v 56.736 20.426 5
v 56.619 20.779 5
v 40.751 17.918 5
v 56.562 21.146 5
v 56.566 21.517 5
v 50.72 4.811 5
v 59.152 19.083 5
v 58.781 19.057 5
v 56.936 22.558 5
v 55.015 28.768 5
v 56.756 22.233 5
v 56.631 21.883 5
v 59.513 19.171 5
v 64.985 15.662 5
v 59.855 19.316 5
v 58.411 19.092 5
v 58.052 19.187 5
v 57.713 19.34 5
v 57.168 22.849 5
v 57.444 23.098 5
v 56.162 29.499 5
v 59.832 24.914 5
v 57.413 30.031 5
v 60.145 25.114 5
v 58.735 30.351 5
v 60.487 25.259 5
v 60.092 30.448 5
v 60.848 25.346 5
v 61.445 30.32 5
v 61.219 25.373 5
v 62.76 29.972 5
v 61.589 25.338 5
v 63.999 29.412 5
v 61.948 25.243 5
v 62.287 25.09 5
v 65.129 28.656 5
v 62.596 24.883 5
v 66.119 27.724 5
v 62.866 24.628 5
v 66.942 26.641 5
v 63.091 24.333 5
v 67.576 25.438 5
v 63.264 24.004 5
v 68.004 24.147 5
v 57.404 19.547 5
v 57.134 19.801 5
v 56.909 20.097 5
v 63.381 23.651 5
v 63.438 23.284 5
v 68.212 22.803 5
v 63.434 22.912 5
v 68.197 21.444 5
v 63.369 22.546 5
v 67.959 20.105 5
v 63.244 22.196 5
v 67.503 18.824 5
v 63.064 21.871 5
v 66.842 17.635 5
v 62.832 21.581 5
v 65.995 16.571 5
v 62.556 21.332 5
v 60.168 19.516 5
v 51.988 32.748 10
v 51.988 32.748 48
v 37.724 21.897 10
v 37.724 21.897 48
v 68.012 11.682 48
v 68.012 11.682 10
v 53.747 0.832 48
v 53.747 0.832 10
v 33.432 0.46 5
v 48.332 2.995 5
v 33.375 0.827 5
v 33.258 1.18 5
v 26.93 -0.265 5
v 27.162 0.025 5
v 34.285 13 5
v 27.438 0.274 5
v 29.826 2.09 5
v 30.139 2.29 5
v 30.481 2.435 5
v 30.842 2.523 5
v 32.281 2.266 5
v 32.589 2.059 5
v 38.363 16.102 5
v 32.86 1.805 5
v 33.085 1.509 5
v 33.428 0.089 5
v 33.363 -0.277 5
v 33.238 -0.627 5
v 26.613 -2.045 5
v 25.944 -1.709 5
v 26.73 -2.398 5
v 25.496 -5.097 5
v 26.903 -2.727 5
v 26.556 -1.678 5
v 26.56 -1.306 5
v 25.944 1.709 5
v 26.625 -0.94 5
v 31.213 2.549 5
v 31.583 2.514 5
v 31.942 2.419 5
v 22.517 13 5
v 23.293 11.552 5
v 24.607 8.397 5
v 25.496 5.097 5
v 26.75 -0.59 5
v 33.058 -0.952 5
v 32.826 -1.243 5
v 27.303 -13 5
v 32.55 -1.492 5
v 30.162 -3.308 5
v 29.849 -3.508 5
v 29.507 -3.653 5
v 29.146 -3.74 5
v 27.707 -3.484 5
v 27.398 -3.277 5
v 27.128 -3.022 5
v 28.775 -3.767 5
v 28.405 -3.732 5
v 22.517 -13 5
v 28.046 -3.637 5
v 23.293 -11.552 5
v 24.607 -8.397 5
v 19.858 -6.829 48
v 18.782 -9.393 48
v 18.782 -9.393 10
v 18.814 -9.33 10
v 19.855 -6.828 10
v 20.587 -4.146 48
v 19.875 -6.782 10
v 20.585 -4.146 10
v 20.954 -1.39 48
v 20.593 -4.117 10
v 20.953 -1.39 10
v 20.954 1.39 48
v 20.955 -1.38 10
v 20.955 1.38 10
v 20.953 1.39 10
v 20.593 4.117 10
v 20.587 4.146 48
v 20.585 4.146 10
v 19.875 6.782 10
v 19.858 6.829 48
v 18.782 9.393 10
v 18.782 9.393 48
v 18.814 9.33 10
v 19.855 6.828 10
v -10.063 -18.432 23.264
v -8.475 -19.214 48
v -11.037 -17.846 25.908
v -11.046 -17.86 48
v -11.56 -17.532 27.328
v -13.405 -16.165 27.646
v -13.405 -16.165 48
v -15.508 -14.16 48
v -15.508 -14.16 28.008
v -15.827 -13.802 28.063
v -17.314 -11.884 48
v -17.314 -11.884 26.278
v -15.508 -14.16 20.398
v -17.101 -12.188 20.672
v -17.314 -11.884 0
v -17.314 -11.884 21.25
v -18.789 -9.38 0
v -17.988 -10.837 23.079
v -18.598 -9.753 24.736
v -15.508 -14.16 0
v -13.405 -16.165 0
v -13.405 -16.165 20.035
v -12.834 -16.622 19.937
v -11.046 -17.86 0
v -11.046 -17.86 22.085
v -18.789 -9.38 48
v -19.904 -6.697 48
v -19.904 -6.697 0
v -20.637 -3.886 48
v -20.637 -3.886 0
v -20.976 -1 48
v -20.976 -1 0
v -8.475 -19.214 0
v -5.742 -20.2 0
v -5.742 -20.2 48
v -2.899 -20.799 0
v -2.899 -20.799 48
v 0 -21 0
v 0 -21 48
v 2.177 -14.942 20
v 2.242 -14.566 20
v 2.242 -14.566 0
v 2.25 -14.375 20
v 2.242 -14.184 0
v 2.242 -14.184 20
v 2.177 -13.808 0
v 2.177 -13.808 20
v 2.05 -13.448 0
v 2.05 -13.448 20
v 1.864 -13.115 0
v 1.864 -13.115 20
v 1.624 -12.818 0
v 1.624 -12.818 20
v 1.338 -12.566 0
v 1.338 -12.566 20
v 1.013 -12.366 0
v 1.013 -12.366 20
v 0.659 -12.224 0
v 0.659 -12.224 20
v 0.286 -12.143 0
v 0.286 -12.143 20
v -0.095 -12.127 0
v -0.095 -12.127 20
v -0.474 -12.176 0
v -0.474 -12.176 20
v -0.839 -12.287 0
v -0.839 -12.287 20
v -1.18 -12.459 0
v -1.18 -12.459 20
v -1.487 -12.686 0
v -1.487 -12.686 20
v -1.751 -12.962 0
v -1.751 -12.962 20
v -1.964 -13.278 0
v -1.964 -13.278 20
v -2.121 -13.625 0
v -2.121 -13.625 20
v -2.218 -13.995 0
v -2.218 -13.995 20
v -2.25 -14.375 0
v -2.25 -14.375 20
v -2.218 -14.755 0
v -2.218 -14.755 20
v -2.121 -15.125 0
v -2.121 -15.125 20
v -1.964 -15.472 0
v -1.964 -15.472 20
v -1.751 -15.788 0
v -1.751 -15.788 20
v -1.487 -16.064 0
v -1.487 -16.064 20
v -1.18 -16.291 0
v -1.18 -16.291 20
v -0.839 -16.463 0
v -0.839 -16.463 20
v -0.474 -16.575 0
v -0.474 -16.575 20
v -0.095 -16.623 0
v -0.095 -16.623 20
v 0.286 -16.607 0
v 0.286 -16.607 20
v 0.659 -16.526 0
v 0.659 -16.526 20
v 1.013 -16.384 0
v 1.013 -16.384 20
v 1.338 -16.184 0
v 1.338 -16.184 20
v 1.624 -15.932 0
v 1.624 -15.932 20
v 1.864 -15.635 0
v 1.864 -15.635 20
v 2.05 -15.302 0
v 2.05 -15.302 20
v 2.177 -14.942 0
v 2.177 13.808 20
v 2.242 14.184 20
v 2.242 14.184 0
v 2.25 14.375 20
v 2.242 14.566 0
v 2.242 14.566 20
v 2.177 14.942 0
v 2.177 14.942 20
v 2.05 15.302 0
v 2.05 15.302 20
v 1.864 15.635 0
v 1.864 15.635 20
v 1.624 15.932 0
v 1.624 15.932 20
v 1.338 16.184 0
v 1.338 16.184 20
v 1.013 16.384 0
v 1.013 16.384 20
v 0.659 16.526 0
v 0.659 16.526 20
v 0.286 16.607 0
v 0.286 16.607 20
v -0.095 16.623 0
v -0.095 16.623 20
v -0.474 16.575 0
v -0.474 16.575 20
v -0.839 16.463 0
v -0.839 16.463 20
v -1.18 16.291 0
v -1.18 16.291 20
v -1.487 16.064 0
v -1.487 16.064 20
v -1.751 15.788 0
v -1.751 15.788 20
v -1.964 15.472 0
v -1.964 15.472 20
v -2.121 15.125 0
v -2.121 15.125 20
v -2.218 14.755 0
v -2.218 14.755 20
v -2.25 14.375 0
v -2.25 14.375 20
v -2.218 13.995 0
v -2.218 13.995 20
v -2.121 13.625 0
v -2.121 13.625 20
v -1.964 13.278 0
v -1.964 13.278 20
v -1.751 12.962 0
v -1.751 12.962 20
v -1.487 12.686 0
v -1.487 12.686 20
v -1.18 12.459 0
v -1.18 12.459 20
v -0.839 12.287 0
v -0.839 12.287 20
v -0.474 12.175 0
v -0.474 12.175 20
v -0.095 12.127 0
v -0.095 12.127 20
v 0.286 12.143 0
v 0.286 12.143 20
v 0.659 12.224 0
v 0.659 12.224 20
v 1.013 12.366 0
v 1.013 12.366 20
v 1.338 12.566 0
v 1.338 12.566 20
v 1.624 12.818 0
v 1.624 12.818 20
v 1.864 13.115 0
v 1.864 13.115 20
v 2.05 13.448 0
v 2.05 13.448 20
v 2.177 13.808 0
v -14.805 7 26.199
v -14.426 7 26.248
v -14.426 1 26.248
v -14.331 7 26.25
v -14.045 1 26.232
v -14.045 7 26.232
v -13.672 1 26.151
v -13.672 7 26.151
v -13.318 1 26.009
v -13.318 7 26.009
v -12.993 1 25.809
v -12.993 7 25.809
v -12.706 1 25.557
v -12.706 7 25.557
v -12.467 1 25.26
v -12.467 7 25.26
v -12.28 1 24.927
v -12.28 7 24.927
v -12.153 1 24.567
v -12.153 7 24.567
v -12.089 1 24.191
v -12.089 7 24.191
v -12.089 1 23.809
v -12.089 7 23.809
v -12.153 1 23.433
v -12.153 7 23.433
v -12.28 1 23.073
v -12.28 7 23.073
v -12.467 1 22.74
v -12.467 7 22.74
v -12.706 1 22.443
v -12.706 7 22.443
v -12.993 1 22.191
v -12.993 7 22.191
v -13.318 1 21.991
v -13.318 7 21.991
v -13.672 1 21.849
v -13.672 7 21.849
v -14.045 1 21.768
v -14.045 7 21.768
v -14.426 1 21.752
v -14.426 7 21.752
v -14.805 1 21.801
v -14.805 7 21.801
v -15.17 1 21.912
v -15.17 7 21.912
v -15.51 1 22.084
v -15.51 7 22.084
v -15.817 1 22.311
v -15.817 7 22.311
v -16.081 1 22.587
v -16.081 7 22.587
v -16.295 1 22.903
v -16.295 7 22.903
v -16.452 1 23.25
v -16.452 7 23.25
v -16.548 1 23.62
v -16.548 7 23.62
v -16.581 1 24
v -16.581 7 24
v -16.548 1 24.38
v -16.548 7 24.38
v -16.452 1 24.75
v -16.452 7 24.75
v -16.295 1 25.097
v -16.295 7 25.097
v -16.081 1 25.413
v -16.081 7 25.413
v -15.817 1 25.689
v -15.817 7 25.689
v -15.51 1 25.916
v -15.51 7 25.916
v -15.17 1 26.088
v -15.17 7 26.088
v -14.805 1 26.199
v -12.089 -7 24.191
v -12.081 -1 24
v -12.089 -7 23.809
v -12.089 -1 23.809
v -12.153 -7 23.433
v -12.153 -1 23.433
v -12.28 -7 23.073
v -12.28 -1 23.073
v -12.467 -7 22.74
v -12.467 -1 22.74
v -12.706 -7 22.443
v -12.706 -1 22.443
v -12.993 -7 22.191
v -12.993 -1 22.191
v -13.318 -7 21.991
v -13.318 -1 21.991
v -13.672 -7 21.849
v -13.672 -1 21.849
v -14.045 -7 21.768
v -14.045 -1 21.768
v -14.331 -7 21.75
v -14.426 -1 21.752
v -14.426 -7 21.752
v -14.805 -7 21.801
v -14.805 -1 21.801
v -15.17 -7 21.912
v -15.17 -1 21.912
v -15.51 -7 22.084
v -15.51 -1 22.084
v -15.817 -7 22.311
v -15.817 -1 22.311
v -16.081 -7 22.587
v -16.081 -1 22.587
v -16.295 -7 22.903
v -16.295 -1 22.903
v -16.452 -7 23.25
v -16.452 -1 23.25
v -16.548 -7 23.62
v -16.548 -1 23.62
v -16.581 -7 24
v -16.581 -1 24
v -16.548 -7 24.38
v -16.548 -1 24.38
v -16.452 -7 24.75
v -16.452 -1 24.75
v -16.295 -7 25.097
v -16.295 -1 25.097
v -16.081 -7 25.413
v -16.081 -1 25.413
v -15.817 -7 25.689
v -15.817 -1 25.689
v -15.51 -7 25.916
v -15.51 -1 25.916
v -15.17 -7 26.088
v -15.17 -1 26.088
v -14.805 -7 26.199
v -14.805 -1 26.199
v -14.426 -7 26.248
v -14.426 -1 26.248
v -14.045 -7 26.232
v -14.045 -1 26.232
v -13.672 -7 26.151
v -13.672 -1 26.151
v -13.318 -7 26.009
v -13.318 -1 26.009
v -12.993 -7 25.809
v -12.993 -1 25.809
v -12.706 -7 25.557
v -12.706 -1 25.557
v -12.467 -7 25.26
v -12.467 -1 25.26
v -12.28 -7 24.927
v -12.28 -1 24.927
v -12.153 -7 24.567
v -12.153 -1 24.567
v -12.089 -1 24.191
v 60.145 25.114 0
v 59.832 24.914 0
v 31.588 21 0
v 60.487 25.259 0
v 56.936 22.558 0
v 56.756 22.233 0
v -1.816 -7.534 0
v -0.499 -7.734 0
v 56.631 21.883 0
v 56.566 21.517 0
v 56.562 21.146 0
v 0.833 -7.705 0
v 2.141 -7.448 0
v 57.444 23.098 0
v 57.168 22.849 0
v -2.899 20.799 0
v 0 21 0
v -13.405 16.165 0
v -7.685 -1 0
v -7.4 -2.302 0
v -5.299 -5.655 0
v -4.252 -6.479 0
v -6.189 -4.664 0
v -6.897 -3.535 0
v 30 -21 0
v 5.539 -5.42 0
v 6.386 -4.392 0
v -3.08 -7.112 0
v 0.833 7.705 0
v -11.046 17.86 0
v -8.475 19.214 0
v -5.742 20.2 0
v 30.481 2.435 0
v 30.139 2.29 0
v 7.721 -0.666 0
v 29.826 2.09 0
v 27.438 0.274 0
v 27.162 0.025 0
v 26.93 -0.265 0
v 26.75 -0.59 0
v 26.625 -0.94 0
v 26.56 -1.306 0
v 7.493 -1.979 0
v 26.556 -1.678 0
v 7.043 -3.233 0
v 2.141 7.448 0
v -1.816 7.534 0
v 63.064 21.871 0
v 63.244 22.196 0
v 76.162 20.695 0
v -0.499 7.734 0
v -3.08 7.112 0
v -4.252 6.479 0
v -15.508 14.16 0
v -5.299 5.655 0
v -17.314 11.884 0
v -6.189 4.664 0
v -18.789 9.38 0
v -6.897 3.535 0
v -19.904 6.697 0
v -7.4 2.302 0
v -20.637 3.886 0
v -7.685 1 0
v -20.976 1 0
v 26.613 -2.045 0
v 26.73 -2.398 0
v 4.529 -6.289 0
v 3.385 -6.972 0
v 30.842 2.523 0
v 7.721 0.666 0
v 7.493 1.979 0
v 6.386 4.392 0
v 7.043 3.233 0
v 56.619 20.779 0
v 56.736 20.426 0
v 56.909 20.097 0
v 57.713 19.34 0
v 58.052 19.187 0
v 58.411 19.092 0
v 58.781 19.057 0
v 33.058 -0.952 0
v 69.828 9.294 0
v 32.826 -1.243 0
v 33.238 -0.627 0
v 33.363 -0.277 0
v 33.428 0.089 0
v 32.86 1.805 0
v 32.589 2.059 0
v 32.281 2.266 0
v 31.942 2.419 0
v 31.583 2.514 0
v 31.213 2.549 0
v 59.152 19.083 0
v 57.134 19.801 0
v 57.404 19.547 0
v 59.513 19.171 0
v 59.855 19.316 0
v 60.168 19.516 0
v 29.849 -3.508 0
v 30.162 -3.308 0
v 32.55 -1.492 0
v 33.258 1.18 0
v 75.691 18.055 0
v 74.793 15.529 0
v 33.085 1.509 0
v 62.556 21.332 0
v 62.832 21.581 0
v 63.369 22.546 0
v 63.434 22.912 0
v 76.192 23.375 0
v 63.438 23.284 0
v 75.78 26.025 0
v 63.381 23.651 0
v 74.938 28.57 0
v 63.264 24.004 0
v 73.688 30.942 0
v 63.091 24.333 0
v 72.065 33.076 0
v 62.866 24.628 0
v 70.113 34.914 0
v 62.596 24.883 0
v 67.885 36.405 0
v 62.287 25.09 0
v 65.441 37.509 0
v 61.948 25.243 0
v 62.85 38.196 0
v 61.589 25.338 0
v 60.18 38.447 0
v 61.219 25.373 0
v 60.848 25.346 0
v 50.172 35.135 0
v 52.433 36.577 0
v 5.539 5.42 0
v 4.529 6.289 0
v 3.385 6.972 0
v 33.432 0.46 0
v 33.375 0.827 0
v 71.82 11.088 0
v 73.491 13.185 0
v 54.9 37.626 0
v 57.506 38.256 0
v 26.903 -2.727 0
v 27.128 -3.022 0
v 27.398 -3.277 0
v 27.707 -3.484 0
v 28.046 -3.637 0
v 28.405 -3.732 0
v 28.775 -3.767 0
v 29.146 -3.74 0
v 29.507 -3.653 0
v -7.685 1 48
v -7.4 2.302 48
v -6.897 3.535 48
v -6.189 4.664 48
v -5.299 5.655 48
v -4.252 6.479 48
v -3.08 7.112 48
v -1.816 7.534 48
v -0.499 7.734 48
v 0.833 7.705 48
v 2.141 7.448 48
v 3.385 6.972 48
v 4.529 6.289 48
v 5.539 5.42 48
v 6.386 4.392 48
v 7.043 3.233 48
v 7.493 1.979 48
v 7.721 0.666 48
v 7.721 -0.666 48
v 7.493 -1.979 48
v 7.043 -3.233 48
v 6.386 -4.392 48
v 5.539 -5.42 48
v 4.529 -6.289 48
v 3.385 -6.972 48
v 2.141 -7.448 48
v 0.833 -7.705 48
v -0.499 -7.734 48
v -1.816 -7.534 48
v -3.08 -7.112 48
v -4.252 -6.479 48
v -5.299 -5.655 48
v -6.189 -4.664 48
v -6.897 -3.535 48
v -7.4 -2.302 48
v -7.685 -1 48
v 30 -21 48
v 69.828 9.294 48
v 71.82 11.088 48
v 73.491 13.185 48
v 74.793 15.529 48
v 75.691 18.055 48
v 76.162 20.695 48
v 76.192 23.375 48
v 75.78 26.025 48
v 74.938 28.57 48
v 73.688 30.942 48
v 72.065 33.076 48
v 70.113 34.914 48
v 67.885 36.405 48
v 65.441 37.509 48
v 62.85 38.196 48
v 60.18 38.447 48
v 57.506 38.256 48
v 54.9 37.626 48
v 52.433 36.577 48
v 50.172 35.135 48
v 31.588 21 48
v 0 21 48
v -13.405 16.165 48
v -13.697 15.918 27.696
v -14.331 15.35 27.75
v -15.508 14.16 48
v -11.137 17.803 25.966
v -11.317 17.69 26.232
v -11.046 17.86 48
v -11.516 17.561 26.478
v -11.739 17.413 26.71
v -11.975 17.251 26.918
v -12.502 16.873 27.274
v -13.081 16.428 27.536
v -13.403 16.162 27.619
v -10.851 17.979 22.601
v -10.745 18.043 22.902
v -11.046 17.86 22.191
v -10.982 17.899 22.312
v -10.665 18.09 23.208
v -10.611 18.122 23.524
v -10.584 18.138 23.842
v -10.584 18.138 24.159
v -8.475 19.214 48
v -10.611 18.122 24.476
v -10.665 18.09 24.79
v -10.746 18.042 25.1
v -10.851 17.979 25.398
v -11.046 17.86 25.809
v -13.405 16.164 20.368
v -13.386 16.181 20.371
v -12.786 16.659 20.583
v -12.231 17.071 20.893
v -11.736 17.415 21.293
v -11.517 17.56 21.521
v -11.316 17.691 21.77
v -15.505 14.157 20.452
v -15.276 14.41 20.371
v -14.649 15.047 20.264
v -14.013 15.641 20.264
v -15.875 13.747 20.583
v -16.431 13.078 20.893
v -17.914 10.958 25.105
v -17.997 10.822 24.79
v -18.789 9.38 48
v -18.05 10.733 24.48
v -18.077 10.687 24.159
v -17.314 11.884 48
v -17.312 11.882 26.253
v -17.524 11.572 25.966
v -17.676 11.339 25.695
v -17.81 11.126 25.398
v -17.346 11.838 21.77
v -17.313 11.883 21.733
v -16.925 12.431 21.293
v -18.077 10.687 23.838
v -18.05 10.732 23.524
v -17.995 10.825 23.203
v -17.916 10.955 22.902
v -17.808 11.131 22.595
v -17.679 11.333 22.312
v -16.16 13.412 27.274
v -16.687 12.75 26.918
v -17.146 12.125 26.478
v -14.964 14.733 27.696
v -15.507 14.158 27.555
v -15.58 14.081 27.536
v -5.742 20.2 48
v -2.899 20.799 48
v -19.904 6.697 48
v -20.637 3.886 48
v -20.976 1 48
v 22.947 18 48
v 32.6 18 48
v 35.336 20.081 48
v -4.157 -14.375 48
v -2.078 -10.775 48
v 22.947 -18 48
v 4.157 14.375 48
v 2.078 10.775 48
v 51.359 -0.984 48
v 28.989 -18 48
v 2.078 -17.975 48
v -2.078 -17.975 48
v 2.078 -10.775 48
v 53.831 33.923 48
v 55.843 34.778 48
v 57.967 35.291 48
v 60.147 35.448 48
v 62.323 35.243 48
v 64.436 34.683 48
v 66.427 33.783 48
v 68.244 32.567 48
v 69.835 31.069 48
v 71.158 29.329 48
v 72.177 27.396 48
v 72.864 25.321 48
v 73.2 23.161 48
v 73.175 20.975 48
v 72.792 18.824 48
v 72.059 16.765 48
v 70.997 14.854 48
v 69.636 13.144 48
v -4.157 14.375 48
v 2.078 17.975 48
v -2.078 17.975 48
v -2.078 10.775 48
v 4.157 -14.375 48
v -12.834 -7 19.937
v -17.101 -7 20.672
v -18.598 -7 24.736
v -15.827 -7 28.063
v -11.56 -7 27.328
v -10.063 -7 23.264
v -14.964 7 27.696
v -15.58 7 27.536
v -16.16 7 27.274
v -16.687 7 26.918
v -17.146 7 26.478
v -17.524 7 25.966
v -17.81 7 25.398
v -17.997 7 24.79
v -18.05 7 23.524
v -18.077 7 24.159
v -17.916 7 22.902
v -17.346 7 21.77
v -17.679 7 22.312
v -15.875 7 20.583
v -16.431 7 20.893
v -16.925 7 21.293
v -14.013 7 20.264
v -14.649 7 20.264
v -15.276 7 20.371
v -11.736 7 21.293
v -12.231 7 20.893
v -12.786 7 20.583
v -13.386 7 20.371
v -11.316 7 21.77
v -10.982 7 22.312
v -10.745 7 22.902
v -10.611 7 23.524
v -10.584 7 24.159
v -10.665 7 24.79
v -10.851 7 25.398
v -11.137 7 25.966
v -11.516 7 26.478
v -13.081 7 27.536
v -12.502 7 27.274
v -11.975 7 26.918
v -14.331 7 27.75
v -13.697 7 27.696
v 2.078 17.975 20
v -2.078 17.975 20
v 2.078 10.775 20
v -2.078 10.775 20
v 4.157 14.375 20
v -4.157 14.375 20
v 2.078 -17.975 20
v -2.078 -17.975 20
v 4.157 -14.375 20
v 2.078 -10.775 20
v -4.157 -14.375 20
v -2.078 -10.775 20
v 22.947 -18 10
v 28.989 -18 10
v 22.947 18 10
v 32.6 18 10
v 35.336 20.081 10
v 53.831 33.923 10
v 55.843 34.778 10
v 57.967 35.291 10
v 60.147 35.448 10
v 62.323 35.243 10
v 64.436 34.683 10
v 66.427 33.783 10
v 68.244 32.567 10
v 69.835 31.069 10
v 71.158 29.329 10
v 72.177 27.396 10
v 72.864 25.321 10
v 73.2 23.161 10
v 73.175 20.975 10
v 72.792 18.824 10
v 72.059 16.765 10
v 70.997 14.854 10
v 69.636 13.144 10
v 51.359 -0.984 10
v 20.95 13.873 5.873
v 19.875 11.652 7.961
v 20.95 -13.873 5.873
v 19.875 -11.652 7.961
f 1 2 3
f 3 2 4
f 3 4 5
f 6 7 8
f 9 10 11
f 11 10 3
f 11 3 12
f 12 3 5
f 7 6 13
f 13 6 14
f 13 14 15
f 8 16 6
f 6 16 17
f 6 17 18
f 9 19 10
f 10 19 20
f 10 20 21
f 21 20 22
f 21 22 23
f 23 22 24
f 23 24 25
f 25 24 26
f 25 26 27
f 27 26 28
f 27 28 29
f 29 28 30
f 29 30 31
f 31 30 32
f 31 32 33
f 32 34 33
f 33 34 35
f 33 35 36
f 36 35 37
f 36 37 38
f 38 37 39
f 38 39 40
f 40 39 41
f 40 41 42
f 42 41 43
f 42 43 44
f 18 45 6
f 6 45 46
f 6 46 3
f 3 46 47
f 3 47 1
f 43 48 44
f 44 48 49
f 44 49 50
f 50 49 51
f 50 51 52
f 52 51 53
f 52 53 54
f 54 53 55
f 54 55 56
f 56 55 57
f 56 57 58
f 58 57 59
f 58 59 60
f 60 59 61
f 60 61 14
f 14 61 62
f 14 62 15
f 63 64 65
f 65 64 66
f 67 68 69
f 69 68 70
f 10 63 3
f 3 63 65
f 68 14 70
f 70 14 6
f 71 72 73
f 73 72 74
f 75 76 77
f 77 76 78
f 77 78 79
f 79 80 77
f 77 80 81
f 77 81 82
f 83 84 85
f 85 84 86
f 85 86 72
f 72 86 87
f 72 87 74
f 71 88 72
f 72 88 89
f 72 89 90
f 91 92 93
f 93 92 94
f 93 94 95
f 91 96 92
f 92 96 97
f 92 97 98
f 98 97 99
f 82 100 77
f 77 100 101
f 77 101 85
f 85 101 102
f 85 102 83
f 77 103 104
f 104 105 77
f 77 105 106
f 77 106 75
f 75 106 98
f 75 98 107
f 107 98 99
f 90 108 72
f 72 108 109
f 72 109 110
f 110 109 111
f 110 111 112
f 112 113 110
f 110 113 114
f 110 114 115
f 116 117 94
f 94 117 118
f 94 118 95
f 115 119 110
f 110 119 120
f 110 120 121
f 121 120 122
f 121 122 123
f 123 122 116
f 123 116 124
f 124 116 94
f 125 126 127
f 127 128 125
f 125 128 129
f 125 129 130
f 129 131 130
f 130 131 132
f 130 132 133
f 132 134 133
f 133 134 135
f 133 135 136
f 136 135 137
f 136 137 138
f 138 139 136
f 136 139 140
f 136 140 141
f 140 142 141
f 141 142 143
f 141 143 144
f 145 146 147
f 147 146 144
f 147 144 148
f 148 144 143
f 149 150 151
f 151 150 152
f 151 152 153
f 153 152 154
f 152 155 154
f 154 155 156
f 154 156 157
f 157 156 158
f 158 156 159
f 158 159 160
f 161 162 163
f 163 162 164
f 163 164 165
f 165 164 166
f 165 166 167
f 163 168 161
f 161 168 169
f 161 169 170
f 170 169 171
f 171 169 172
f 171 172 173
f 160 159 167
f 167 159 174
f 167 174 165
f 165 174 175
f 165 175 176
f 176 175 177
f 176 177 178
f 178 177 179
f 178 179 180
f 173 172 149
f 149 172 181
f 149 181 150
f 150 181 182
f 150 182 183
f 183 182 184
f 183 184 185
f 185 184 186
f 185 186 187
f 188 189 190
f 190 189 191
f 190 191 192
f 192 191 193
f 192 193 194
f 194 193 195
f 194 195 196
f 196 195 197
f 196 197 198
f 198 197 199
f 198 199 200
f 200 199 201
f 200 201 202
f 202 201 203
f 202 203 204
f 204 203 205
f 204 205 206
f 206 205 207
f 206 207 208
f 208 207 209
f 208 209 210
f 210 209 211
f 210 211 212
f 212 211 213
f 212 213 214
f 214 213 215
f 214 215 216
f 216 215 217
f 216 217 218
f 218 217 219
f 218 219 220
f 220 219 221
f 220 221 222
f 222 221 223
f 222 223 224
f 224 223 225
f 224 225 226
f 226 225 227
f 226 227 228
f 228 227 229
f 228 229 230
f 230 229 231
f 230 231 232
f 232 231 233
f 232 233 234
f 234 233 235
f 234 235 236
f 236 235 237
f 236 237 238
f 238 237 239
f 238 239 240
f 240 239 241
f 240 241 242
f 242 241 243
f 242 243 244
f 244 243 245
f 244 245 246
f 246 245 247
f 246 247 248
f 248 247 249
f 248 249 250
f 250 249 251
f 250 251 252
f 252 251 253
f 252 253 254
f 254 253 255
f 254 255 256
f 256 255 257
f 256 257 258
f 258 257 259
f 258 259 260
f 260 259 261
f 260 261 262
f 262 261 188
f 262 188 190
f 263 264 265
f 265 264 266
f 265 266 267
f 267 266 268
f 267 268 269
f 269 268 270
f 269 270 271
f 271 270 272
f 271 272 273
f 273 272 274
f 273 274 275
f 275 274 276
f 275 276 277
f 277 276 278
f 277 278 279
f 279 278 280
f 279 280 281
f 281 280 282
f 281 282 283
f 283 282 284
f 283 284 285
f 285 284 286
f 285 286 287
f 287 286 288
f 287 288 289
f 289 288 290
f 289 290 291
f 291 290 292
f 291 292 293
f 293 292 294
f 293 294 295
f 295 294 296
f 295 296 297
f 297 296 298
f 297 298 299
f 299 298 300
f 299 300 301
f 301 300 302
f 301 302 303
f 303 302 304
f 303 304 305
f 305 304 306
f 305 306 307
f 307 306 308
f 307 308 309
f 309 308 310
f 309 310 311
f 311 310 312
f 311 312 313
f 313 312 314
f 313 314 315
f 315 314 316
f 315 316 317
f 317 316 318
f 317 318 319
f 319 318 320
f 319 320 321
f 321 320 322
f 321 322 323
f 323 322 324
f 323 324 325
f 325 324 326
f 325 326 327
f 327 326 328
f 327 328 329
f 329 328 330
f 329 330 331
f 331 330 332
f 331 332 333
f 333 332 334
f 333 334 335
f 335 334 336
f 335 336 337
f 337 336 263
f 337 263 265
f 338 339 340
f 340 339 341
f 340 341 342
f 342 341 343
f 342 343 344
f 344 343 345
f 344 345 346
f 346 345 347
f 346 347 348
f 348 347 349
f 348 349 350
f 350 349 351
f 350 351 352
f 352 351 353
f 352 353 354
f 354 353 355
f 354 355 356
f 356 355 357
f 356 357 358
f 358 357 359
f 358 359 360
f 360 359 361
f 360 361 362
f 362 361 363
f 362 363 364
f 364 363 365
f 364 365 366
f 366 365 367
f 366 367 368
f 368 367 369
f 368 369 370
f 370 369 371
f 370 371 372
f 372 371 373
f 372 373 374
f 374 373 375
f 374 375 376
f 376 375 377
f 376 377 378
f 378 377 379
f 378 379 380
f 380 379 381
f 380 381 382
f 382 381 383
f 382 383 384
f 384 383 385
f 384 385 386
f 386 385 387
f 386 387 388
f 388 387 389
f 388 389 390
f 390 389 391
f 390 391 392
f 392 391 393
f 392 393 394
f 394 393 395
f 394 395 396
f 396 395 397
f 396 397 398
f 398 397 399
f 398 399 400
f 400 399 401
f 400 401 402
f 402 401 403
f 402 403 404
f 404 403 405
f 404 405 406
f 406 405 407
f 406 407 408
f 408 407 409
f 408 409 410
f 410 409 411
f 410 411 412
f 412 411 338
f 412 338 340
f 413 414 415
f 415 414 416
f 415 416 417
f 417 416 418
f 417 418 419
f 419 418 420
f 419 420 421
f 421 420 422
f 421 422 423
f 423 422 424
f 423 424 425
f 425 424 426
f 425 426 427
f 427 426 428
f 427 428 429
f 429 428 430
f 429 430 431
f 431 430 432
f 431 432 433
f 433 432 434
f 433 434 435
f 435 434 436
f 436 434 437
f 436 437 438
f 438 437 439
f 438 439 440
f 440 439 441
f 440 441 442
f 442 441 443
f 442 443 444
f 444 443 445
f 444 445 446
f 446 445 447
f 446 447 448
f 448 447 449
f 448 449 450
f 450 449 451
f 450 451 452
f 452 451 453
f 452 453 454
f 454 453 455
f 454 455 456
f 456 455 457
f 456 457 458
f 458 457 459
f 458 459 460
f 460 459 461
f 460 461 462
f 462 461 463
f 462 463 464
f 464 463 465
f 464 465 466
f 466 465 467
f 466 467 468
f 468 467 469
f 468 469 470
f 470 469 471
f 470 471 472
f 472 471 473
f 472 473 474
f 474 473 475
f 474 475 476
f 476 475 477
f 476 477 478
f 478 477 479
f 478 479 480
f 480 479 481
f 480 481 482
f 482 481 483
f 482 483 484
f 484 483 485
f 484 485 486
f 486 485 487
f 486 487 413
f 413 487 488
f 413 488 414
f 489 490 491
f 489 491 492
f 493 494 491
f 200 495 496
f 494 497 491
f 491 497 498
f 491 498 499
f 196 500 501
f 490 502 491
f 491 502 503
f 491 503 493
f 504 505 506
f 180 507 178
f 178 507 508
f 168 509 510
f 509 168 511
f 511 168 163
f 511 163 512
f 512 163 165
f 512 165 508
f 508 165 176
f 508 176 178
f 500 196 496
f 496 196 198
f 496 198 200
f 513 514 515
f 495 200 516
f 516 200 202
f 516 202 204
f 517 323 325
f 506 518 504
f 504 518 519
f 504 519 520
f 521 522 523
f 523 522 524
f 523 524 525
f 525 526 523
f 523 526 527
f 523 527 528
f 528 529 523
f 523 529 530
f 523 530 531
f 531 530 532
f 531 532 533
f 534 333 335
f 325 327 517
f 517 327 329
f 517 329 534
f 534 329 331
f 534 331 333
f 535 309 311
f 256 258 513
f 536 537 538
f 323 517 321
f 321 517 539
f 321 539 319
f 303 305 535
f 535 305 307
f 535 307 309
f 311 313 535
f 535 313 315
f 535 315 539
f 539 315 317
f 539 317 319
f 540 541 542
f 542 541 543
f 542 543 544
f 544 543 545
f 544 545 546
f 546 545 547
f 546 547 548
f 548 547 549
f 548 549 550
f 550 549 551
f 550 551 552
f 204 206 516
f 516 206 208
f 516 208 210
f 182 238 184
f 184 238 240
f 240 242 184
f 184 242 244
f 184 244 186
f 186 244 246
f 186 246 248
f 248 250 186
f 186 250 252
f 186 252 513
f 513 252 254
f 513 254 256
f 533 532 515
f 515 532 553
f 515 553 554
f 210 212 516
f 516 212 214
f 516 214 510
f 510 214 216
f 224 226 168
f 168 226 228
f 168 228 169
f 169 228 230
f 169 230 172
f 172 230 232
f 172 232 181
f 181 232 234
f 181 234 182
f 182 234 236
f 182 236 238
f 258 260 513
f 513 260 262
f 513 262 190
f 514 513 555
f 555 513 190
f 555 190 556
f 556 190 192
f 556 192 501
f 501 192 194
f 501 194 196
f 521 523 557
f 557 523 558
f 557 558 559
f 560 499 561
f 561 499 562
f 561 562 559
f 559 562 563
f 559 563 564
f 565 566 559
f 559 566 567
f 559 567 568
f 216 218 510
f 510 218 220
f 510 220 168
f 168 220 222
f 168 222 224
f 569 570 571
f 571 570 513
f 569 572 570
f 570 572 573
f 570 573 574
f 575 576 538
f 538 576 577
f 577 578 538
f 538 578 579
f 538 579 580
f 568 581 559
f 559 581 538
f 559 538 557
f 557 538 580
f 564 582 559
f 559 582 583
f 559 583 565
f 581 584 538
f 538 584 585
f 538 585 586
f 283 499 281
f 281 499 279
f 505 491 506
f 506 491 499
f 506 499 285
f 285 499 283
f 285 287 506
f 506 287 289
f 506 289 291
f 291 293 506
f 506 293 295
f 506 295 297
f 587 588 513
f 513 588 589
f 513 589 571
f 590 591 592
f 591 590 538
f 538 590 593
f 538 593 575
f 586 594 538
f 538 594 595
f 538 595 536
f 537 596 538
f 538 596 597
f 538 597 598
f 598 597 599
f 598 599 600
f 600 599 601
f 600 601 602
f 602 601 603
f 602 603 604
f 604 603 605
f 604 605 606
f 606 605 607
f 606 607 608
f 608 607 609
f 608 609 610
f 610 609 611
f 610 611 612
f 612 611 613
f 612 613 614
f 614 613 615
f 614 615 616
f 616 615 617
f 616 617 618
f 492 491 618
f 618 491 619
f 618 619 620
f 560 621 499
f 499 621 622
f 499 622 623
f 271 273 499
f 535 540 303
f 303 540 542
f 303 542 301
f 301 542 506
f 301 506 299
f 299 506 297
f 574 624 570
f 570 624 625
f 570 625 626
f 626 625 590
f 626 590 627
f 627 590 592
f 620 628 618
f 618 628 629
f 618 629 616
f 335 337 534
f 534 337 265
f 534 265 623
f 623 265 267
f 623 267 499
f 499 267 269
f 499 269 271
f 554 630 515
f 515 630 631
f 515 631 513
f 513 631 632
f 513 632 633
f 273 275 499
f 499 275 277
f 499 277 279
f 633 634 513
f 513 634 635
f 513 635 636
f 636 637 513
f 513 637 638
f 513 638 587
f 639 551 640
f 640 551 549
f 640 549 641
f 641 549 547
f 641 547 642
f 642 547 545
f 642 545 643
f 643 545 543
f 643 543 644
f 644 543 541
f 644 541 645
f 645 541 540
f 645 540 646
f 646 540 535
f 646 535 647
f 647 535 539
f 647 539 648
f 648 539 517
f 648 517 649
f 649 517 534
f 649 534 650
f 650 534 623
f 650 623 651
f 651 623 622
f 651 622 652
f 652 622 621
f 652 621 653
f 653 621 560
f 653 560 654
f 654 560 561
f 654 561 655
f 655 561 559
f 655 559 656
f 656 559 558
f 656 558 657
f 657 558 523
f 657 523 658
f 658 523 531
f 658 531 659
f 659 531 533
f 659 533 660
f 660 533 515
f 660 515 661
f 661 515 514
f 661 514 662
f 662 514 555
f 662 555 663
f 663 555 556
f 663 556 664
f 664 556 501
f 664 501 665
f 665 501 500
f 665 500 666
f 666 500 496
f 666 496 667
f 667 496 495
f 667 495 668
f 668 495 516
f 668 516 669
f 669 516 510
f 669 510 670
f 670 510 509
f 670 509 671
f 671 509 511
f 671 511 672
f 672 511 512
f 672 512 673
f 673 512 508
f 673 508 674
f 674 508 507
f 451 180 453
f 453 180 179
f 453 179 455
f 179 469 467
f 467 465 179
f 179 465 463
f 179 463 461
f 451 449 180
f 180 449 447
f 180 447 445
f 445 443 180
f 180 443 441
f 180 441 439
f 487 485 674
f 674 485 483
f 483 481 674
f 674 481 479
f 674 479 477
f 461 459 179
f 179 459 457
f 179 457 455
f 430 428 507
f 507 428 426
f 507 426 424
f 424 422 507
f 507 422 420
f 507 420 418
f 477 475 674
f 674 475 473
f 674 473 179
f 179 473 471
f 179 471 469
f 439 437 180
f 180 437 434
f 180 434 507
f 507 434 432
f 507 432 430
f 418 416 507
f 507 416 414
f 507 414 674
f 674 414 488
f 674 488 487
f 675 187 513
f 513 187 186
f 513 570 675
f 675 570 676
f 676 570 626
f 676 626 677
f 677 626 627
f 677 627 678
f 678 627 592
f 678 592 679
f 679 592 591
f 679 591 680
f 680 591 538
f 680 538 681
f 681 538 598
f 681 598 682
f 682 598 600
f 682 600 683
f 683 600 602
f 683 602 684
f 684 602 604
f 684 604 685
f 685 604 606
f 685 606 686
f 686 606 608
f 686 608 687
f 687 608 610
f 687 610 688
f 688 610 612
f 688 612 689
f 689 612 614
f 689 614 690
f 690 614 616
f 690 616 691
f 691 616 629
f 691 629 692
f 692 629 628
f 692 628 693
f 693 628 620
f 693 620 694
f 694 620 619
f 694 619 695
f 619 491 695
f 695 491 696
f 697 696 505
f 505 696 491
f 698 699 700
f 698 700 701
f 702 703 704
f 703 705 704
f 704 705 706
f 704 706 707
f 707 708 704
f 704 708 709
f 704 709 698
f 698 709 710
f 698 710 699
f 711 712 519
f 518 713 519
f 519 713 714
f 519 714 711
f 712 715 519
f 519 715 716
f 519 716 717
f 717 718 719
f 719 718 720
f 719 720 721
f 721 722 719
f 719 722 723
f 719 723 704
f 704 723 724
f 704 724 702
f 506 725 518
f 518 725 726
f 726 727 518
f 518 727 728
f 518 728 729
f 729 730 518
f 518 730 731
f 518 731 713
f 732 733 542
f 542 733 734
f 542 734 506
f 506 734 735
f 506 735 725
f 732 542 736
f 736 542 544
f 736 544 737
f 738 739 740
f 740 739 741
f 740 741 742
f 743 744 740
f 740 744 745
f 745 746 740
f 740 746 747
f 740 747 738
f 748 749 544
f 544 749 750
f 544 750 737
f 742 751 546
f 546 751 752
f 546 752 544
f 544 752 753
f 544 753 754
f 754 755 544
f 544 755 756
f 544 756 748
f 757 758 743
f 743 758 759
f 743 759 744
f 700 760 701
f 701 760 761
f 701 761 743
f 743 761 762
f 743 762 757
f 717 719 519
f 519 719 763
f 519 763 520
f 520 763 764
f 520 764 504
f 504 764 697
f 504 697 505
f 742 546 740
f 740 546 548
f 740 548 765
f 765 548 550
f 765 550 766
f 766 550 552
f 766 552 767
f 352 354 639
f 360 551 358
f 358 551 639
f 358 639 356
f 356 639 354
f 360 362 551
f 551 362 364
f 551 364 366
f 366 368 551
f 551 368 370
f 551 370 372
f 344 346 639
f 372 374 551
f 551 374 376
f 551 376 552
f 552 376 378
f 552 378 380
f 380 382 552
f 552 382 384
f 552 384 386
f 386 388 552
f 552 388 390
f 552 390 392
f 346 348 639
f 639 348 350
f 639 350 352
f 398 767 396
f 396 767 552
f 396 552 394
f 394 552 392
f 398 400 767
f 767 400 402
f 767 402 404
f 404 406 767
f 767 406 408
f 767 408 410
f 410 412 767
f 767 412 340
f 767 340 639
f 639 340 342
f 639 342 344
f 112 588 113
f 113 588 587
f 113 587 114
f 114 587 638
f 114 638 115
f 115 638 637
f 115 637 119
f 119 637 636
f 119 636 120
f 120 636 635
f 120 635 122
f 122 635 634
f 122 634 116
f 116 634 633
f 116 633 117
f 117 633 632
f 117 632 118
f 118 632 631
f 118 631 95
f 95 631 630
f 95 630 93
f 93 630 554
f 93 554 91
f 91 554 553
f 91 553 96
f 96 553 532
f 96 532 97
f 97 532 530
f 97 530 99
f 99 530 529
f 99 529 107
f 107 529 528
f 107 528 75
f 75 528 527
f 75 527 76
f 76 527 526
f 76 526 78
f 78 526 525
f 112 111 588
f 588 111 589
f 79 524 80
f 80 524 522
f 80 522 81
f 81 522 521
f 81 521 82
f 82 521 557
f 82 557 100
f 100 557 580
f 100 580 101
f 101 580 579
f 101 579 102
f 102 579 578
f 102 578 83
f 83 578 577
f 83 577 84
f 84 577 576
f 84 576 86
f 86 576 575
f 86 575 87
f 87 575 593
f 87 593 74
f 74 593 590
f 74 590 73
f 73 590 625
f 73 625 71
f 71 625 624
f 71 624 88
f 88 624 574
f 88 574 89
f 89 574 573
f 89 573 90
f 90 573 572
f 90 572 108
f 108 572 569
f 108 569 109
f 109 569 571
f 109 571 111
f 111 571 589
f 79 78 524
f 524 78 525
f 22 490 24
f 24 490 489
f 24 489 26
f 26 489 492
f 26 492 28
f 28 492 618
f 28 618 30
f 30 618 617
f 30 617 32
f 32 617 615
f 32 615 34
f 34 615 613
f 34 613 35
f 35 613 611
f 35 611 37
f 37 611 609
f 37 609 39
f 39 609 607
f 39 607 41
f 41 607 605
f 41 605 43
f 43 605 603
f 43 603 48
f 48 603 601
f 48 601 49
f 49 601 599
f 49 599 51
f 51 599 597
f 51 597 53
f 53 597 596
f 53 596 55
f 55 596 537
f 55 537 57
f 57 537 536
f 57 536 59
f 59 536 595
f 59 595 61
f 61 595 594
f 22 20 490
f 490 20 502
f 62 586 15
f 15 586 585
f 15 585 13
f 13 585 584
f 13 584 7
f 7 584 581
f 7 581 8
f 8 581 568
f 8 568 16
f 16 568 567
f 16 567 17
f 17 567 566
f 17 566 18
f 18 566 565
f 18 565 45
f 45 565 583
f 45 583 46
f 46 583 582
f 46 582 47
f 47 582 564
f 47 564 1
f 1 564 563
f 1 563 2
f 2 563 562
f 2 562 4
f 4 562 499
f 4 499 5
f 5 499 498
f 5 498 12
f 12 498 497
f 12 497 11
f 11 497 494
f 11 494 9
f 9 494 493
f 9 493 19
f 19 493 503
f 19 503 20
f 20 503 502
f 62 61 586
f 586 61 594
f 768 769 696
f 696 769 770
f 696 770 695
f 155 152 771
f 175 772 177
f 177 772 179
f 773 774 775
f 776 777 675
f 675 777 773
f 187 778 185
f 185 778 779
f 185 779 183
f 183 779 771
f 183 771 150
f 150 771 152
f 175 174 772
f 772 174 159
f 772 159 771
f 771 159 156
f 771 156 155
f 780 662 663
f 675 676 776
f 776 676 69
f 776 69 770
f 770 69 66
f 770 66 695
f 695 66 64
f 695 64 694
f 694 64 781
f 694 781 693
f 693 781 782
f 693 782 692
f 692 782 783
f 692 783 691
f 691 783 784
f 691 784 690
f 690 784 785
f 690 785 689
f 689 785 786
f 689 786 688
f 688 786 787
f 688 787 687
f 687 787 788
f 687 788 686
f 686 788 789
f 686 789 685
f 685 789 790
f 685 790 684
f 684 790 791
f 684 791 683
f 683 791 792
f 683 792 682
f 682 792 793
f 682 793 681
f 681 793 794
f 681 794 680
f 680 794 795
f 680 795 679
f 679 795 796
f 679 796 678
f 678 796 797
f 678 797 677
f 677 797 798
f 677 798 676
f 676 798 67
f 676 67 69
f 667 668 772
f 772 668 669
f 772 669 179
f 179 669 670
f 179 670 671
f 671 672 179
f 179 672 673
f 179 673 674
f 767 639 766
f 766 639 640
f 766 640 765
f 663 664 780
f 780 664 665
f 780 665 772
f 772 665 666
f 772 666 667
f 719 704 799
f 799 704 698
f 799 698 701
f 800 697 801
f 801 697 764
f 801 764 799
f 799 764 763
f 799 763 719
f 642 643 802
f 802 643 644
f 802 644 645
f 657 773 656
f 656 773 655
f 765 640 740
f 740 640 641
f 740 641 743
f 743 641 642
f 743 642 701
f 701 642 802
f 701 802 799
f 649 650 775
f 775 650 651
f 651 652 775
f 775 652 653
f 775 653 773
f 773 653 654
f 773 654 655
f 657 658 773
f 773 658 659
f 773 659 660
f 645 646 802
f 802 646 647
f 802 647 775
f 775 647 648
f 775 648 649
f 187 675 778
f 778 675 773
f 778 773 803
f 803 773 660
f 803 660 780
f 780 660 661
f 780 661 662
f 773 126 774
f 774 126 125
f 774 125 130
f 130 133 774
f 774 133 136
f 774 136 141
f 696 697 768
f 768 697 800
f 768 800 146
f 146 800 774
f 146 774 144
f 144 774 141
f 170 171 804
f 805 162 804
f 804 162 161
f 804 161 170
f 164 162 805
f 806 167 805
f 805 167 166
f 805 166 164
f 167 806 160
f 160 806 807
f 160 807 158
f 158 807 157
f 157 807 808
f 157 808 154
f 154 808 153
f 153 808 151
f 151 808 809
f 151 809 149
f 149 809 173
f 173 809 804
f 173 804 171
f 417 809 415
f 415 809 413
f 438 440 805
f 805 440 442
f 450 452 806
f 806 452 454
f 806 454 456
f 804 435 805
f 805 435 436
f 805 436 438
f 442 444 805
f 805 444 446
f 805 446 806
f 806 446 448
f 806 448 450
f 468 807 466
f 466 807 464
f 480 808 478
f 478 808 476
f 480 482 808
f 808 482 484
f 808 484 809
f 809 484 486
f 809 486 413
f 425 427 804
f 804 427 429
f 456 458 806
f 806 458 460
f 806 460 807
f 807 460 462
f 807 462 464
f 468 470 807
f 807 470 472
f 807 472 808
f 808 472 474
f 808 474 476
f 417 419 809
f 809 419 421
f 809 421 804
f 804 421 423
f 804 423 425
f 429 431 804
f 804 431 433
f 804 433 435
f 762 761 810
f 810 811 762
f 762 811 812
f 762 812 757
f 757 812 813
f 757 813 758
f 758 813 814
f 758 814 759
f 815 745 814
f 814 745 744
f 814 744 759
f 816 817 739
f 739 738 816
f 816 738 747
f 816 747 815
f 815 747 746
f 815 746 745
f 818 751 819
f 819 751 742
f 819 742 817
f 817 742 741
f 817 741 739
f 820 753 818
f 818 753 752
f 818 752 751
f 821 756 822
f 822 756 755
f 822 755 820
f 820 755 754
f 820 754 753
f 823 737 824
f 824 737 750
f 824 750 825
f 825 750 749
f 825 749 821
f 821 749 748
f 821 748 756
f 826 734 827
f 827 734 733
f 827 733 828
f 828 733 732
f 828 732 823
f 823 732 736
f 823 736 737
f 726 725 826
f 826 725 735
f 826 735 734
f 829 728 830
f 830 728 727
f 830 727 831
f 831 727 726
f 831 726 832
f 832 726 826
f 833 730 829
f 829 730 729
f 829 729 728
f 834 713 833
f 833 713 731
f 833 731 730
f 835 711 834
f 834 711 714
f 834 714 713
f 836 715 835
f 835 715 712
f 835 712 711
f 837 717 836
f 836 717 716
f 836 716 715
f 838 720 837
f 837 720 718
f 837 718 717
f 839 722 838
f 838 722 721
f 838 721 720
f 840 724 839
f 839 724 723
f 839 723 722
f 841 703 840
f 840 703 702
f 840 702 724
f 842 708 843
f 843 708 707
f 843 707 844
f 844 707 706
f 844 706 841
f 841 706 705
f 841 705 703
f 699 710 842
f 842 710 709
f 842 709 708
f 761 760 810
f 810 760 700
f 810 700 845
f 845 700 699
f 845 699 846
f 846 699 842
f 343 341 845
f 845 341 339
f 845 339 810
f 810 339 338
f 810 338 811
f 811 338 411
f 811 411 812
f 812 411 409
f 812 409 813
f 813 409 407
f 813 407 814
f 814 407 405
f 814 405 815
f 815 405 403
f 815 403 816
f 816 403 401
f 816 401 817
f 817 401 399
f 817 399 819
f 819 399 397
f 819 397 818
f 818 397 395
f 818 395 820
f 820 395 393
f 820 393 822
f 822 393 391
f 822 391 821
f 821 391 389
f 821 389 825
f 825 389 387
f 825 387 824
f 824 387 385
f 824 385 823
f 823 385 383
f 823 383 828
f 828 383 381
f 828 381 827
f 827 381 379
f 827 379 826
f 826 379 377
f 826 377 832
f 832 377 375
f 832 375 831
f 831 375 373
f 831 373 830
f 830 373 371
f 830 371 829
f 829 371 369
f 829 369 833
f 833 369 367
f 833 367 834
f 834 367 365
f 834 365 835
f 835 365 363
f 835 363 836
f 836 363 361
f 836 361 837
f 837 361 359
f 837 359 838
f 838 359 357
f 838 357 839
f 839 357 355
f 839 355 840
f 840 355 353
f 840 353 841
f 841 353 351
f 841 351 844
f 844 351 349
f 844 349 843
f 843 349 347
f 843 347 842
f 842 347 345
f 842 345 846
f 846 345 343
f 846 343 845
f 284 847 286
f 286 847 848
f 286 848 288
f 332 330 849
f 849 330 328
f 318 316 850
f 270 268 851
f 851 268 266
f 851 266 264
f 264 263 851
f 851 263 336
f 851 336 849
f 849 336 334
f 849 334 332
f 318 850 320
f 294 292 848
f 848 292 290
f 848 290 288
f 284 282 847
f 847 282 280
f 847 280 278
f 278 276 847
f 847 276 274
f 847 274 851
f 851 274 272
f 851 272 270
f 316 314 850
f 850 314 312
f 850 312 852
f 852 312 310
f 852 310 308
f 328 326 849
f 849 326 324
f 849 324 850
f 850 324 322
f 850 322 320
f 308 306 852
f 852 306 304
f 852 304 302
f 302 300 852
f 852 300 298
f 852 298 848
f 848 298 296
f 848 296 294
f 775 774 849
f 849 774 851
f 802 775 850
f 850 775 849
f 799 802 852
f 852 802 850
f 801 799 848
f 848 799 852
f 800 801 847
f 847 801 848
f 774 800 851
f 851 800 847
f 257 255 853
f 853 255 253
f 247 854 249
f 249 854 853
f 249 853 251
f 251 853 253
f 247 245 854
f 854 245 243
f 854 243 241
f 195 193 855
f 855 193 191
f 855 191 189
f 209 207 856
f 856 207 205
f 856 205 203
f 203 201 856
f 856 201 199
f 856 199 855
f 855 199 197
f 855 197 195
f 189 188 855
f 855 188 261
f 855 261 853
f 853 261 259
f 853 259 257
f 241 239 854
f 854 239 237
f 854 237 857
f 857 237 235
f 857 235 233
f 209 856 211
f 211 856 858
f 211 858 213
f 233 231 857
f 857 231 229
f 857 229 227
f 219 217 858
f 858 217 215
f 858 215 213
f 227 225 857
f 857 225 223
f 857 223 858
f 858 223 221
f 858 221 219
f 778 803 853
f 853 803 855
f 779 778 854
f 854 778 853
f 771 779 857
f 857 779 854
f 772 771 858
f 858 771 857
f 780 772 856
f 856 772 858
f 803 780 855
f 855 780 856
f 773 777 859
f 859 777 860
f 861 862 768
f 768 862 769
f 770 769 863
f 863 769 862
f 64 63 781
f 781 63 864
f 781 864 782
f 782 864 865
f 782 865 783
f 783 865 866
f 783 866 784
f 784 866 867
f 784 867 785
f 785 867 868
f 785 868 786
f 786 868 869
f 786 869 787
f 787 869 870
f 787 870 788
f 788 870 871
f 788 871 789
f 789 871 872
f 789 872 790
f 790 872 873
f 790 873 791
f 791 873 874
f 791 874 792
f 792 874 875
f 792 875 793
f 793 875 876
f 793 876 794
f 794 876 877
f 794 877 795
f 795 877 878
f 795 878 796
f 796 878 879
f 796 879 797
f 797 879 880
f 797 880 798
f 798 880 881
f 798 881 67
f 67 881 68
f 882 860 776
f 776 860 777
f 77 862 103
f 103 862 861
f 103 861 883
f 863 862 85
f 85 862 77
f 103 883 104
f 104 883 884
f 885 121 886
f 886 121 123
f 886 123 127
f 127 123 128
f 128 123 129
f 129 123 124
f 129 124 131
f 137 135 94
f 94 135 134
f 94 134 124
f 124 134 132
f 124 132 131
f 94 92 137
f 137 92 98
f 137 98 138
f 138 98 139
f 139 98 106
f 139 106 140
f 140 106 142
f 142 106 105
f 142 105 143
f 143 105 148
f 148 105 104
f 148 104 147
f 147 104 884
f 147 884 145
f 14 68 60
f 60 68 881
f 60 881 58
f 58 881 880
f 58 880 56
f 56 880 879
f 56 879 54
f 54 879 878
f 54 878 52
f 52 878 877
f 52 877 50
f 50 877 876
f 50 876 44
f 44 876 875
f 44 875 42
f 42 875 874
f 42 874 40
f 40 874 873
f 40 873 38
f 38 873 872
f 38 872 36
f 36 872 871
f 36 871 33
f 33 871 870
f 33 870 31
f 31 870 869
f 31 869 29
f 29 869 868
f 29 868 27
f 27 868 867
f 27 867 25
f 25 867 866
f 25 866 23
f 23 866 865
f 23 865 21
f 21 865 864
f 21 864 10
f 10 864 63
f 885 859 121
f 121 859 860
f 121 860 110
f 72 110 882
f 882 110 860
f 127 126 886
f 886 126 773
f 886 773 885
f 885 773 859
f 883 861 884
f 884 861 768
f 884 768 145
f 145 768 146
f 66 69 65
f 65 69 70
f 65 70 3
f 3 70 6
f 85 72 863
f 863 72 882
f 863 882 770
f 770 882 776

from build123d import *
from build123d.topology import SkipClean

# Parameters (mm, degrees)
BOSS_EXTRUDE1_DEPTH     = 5
BOSS_EXTRUDE2_DEPTH     = 43
CUT_EXTRUDE1_DEPTH      = 99.344878968
CUT_EXTRUDE1_DEPTH_BACK = 99.344878968
SKETCH4_R               = 2.25
CUT_EXTRUDE2_DEPTH      = 14
SKETCH6_R               = 3.75
CUT_EXTRUDE3_DEPTH      = 14
SKETCH7_R               = 2.25
CUT_EXTRUDE4_DEPTH      = 50
CUT_EXTRUDE5_DEPTH      = 28
EXTRUDE_THIN1_DEPTH     = 43
CHAMFER1_SIZE           = 5
CHAMFER2_START          = 4.9999999
CHAMFER2_DEPTH          = 43.0000001
CHAMFER3_SIZE           = 10
CHAMFER3_SIZE_2         = 7.855445392
EXTRUDE_THIN2_REACH     = 99.948


with BuildPart() as part:
    # Sketch1 → Boss-Extrude1 (new body)
    with BuildSketch(Plane.XY):
        with BuildLine():
            Line((0, 21), (31.588461174, 21))
            Line((31.588461174, 21), (50.172213659, 35.135394674))
            ThreePointArc((50.172213659, 35.135394674), (72.920555239, 32.042625706), (69.827786272, 9.294284126))
            Line((69.827786272, 9.294284126), (30, -21))
            Line((30, -21), (0, -21))
            ThreePointArc((0, -21), (-14.491376746, -15.198684154), (-20.976176963, -1))
            Line((-20.976176963, -1), (-7.685213074, -1))
            ThreePointArc((-7.685213074, -1), (7.75, 0), (-7.685213074, 1))
            Line((-7.685213074, 1), (-20.976176963, 1))
            ThreePointArc((-20.976176963, 1), (-14.491376746, 15.198684154), (0, 21))
        make_face()
        with BuildLine():
            Line((27.437787439, 0.273900145), (29.82554698, 2.090106184))
            ThreePointArc((29.82554698, 2.090106184), (32.978521164, 1.661441058), (32.549856038, -1.491533127))
            Line((32.549856038, -1.491533127), (30.162096497, -3.307739166))
            ThreePointArc((30.162096497, -3.307739166), (27.009122313, -2.87907404), (27.437787439, 0.273900145))
        make_face(mode=Mode.SUBTRACT)
        with BuildLine():
            Line((62.556034265, 21.332122764), (60.168274724, 19.515916725))
            ThreePointArc((60.168274724, 19.515916725), (57.01530054, 19.944581851), (57.443965666, 23.097556036))
            Line((57.443965666, 23.097556036), (59.831725206, 24.913762075))
            ThreePointArc((59.831725206, 24.913762075), (62.984699391, 24.485096949), (62.556034265, 21.332122764))
        make_face(mode=Mode.SUBTRACT)
    extrude(amount=BOSS_EXTRUDE1_DEPTH)

    # Sketch2 → Boss-Extrude2 (add)
    with SkipClean():  # the faces are left unmerged after this step: merging them gives an invalid solid
        with BuildSketch(Plane.XY.offset(5)):
            with BuildLine():
                Line((-7.685213074, -1), (-20.976176963, -1))
                ThreePointArc((-20.976176963, -1), (-14.491376746, -15.198684154), (0, -21))
                ThreePointArc((0, -21), (21, 0), (0, 21))
                ThreePointArc((0, 21), (-14.491376746, 15.198684154), (-20.976176963, 1))
                Line((-20.976176963, 1), (-7.685213074, 1))
                ThreePointArc((-7.685213074, 1), (7.75, 0), (-7.685213074, -1))
            make_face()
        extrude(amount=BOSS_EXTRUDE2_DEPTH)
    add(part.part.scale(1), mode=Mode.REPLACE)  # the faces are merged on a copy

    # Sketch4 → Cut-Extrude1 (cut, two sides: drawn at the far end of the back side and taken through both)
    with SkipClean():  # the faces are left unmerged after this step: merging them gives an invalid solid
        with BuildSketch(Plane(origin=(0, -1, 0), x_dir=(1, 0, 0), z_dir=(0, 1, 0)).offset(-CUT_EXTRUDE1_DEPTH_BACK)):
            with Locations(Location((-14.330695019, -24, 0), (0, 0, 180))):
                Circle(SKETCH4_R)
        extrude(amount=CUT_EXTRUDE1_DEPTH + CUT_EXTRUDE1_DEPTH_BACK, mode=Mode.SUBTRACT)

    # Sketch5 → Cut-Extrude2 (cut)
    with SkipClean():  # the faces are left unmerged after this step: merging them gives an invalid solid
        with BuildSketch(Plane.XZ.offset(21)):
            Polygon((-12.834085604, 19.936730349), (-10.063495571, 23.264466947), (-11.560104986, 27.327736598), (-15.827304434, 28.063269651), (-18.597894467, 24.735533053), (-17.101285052, 20.672263402), align=None)
        extrude(amount=-CUT_EXTRUDE2_DEPTH, mode=Mode.SUBTRACT)

    # Sketch6 → Cut-Extrude3 (cut)
    with SkipClean():  # the faces are left unmerged after this step: merging them gives an invalid solid
        with BuildSketch(Plane(origin=(0, 21, 0), x_dir=(1, 0, 0), z_dir=(0, 1, 0))):
            with Locations(Location((-14.330695019, -24, 0), (0, 0, 270))):
                Circle(SKETCH6_R)
        extrude(amount=-CUT_EXTRUDE3_DEPTH, mode=Mode.SUBTRACT)

    # Sketch7 → Cut-Extrude4 (cut)
    with SkipClean():  # the faces are left unmerged after this step: merging them gives an invalid solid
        with BuildSketch(Plane(origin=(0, 0, 0), x_dir=(-1, 0, 0), z_dir=(0, 0, -1))):
            with Locations((0, 14.375)):
                Circle(SKETCH7_R)
            with Locations((0, -14.375)):
                Circle(SKETCH7_R)
        extrude(amount=-CUT_EXTRUDE4_DEPTH, mode=Mode.SUBTRACT)

    # Sketch8 → Cut-Extrude5 (cut)
    with SkipClean():  # the faces are left unmerged after this step: merging them gives an invalid solid
        with BuildSketch(Plane.XY.offset(48)):
            Polygon((4.156921938, 14.375), (2.078460969, 17.975), (-2.078460969, 17.975), (-4.156921938, 14.375), (-2.078460969, 10.775), (2.078460969, 10.775), align=None)
            Polygon((4.156921938, -14.375), (2.078460969, -10.775), (-2.078460969, -10.775), (-4.156921938, -14.375), (-2.078460969, -17.975), (2.078460969, -17.975), align=None)
        extrude(amount=-CUT_EXTRUDE5_DEPTH, mode=Mode.SUBTRACT)

    # Sketch9 → Extrude-Thin1 (add)
    with SkipClean():  # the faces are left unmerged after this step: merging them gives an invalid solid
        with BuildSketch(Plane.XY.offset(5)):
            with BuildLine():
                Line((0, 21), (31.588461174, 21))
                Line((31.588461174, 21), (50.172213659, 35.135394674))
                ThreePointArc((50.172213659, 35.135394674), (72.920555239, 32.042625706), (69.827786272, 9.294284126))
                Line((69.827786272, 9.294284126), (30, -21))
                Line((30, -21), (0, -21))
                Line((0, -21), (0, -18))
                Line((0, -18), (28.988704289, -18))
                Line((28.988704289, -18), (68.011580233, 11.682043667))
                ThreePointArc((68.011580233, 11.682043667), (70.532795698, 30.226419667), (51.988419698, 32.747635133))
                Line((51.988419698, 32.747635133), (32.599756885, 18))
                Line((32.599756885, 18), (0, 18))
                Line((0, 18), (0, 21))
            make_face()
        extrude(amount=EXTRUDE_THIN1_DEPTH)

    # Chamfer1
    chamfer1_edges = [part.edges().sort_by_distance(p)[0] for p in [
        (21, 0, 5),
        (19.902679058, -18, 5),
        (21.708205356, 18, 5),
        (42.294088292, 25.373817566, 5),
        (70.532795698, 30.226419667, 5),
        (48.500142261, -3.158978166, 5),
    ]]
    chamfer(chamfer1_edges, length=CHAMFER1_SIZE)

    # Chamfer2: read off the stored shape, not the designer's step
    # Chamfer2 outline → Chamfer2 (add)
    with SkipClean():  # the faces are left unmerged after this step: merging them gives an invalid solid
        with BuildSketch(Plane.XY.offset(CHAMFER2_START)):
            with BuildLine():
                Line((10.816653826, -18), (15.091675551, -18))
                Line((15.091675551, -18), (17.124404275, -12.155442329))
                ThreePointArc((17.124404275, -12.155442329), (14.272890231, -15.404045068), (10.816653826, -18))
            make_face()
            with BuildLine():
                ThreePointArc((10.816653826, 18), (14.272890231, 15.404045068), (17.124404275, 12.155442329))
                Line((17.124404275, 12.155442329), (15.091675551, 18))
                Line((15.091675551, 18), (10.816653826, 18))
            make_face()
        extrude(amount=CHAMFER2_DEPTH)

    # Chamfer3
    # the kernel refuses this chamfer: 10, 7.855445392 mm, written as the material it adds along each edge
    with BuildSketch(Plane(origin=(15.091675551, -18, -15.71682988), x_dir=(0.32849742893027223, 0.9445048645646038, 0), z_dir=(0, 0, 1))) as chamfer3_piece_1_section:
        Polygon((CHAMFER3_SIZE, 0), (CHAMFER3_SIZE_2 * 0.328497428916, -CHAMFER3_SIZE_2 * 0.944504864523), (0, 0), align=None)
    chamfer3_piece_1 = extrude(amount=63.71682988, mode=Mode.PRIVATE)
    chamfer3_piece_1 = split(chamfer3_piece_1, bisect_by=Plane(origin=(15.091675551, -5.14158506, -2.85841494), z_dir=(0, 0.7071067811865476, 0.7071067811865476)), keep=Keep.TOP, mode=Mode.PRIVATE)
    add(chamfer3_piece_1)
    with BuildSketch(Plane(origin=(15.091675551, 18, -15.71682988), x_dir=(0.32849742893027223, -0.9445048645646039, 0), z_dir=(0, 0, 1))) as chamfer3_piece_2_section:
        Polygon((CHAMFER3_SIZE, 0), (CHAMFER3_SIZE_2 * 0.328497428916, CHAMFER3_SIZE_2 * 0.944504864523), (0, 0), align=None)
    chamfer3_piece_2 = extrude(amount=63.71682988, mode=Mode.PRIVATE)
    chamfer3_piece_2 = split(chamfer3_piece_2, bisect_by=Plane(origin=(15.091675551, 5.14158506, -2.85841494), z_dir=(0, -0.7071067811865476, 0.7071067811865476)), keep=Keep.TOP, mode=Mode.PRIVATE)
    add(chamfer3_piece_2)

    # Extrude-Thin2: up to this face of the body (flat: up to its plane)
    extrude_thin2_end = Plane(part.part.faces().sort_by_distance((44.470080552, 10.533508587, 5))[0])
    # Sketch10 → Extrude-Thin2 (add, up to the picked face)
    with BuildSketch(Plane.XY.offset(48), mode=Mode.PRIVATE) as extrude_thin2_sk1:
        Polygon((33.519574493, 22.468866363), (53.175147106, -3.372244184), (55.562906646, -1.556038145), (35.907334034, 24.285072402), align=None)
    extrude_thin2_tool1 = split(extrude(extrude_thin2_sk1.sketch, amount=-EXTRUDE_THIN2_REACH, mode=Mode.PRIVATE), bisect_by=extrude_thin2_end, keep=Keep.BOTH, mode=Mode.PRIVATE)
    add(extrude_thin2_tool1.solids().sort_by(Axis((44.541241, 10.456414, 48), (0, 0, -1)))[0])


solid = part.part
